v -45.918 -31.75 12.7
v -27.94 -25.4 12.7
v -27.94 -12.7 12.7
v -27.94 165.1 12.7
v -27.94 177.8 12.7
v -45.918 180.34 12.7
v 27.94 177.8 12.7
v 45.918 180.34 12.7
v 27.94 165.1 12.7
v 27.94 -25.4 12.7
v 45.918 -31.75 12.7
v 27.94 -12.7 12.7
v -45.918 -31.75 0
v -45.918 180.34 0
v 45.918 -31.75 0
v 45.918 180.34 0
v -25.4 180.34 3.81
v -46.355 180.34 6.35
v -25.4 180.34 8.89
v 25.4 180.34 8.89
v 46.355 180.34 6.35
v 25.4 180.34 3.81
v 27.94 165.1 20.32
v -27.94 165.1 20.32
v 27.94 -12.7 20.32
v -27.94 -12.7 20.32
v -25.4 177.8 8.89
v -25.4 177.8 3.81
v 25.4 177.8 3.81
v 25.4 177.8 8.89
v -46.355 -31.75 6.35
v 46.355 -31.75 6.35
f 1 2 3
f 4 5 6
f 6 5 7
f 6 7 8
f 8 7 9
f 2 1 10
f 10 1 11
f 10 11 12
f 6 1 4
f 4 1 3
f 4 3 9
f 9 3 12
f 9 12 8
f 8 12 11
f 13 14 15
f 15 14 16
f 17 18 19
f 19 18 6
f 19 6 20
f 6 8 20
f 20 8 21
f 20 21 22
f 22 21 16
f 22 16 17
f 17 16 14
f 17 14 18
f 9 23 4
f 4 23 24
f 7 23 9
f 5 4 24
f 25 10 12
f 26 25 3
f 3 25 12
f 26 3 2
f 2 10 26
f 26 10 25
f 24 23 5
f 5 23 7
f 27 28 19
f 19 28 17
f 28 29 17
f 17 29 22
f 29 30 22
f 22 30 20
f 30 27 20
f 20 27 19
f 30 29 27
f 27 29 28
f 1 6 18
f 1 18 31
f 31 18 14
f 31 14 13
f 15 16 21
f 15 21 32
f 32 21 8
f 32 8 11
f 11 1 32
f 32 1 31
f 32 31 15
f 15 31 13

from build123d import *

# Parameters (mm, degrees)
SKETCH1_W               = 99.06
SKETCH1_H               = 360.68
BOSS_EXTRUDE1_DEPTH     = 12.7
SKETCH3_W               = 32.004
SKETCH3_H               = 11.43
BOSS_EXTRUDE3_DEPTH     = 20.32
SKETCH2_W               = 55.88
SKETCH2_H               = 12.7
BOSS_EXTRUDE4_DEPTH     = 7.62
CUT_EXTRUDE2_DEPTH      = 38.1
SKETCH6_W               = 50.8
SKETCH6_H               = 5.08
CUT_EXTRUDE3_DEPTH      = 2.54
SKETCH7_R               = 50.8
SKETCH7_R_2             = 46.355
CUT_EXTRUDE4_DEPTH      = 366.559302576
CUT_EXTRUDE5_DEPTH      = 190.107435139
CUT_EXTRUDE5_DEPTH_BACK = 190.107435139
SKETCH8_W               = 158.320369358
SKETCH8_H               = 163.138922325


with BuildPart() as part:
    # Sketch1 → Boss-Extrude1 (new body)
    with BuildSketch(Plane.XY):
        Rectangle(SKETCH1_W, SKETCH1_H)
    extrude(amount=BOSS_EXTRUDE1_DEPTH)

    # Sketch3 → Boss-Extrude3 (add)
    with BuildSketch(Plane(origin=(0, 0, 0), x_dir=(-1, 0, 0), z_dir=(0, 0, -1))):
        with Locations((0, -43.815)):
            Rectangle(SKETCH3_W, SKETCH3_H)
        with Locations((0, -159.385)):
            Rectangle(SKETCH3_W, SKETCH3_H)
    boss_extrude3 = extrude(amount=BOSS_EXTRUDE3_DEPTH)

    # Sketch2 → Boss-Extrude4 (add, symmetric)
    with BuildSketch(Plane.XY.offset(12.7)):
        with Locations((0, 171.45)):
            Rectangle(SKETCH2_W, SKETCH2_H)
        with Locations((0, -19.05)):
            Rectangle(SKETCH2_W, SKETCH2_H)
    extrude(amount=BOSS_EXTRUDE4_DEPTH, both=True)

    # Mirror1: Boss-Extrude3 across plane
    add(boss_extrude3.mirror(Plane.XY.offset(6.35)))

    # Sketch5 → Cut-Extrude2 (cut, symmetric)
    with BuildSketch(Plane(origin=(0, 0, 0), x_dir=(0, 0, -1), z_dir=(1, 0, 0))):
        Polygon((20.32, -153.67), (0, -165.1), (20.32, -165.1), align=None)
        Polygon((-33.02, -153.67), (-12.7, -165.1), (-33.02, -165.1), align=None)
        Polygon((-33.02, -49.53), (-33.02, -38.1), (-12.7, -38.1), align=None)
        Polygon((20.32, -49.53), (0, -38.1), (20.32, -38.1), align=None)
        Polygon((-12.7, 177.8), (-20.32, 165.1), (-20.32, 177.8), align=None)
        Polygon((-20.32, -12.7), (-12.7, -25.4), (-20.32, -25.4), align=None)
    extrude(amount=CUT_EXTRUDE2_DEPTH, both=True, mode=Mode.SUBTRACT)

    # Sketch6 → Cut-Extrude3 (cut)
    with BuildSketch(Plane(origin=(0, 180.34, 0), x_dir=(1, 0, 0), z_dir=(0, 1, 0))):
        with Locations((0, -6.35)):
            Rectangle(SKETCH6_W, SKETCH6_H)
    cut_extrude3 = extrude(amount=-CUT_EXTRUDE3_DEPTH, mode=Mode.SUBTRACT)

    # Mirror2: Cut-Extrude3 across plane
    add(cut_extrude3.mirror(Plane.ZX), mode=Mode.SUBTRACT)

    # Sketch7 → Cut-Extrude4 (cut, through all)
    with BuildSketch(Plane(origin=(0, 180.34, 0), x_dir=(1, 0, 0), z_dir=(0, 1, 0))):
        with Locations((0, -6.35)):
            Circle(SKETCH7_R)
        with Locations((0, -6.35)):
            Circle(SKETCH7_R_2, mode=Mode.SUBTRACT)
    extrude(amount=-CUT_EXTRUDE4_DEPTH, mode=Mode.SUBTRACT)

    # Sketch8 → Cut-Extrude5 (cut, two sides: drawn at the far end of the back side and taken through both)
    with BuildSketch(Plane.XY.offset(-CUT_EXTRUDE5_DEPTH_BACK)):
        with Locations((0.168785042, -113.319461163)):
            Rectangle(SKETCH8_W, SKETCH8_H)
    extrude(amount=CUT_EXTRUDE5_DEPTH + CUT_EXTRUDE5_DEPTH_BACK, mode=Mode.SUBTRACT)


solid = part.part
